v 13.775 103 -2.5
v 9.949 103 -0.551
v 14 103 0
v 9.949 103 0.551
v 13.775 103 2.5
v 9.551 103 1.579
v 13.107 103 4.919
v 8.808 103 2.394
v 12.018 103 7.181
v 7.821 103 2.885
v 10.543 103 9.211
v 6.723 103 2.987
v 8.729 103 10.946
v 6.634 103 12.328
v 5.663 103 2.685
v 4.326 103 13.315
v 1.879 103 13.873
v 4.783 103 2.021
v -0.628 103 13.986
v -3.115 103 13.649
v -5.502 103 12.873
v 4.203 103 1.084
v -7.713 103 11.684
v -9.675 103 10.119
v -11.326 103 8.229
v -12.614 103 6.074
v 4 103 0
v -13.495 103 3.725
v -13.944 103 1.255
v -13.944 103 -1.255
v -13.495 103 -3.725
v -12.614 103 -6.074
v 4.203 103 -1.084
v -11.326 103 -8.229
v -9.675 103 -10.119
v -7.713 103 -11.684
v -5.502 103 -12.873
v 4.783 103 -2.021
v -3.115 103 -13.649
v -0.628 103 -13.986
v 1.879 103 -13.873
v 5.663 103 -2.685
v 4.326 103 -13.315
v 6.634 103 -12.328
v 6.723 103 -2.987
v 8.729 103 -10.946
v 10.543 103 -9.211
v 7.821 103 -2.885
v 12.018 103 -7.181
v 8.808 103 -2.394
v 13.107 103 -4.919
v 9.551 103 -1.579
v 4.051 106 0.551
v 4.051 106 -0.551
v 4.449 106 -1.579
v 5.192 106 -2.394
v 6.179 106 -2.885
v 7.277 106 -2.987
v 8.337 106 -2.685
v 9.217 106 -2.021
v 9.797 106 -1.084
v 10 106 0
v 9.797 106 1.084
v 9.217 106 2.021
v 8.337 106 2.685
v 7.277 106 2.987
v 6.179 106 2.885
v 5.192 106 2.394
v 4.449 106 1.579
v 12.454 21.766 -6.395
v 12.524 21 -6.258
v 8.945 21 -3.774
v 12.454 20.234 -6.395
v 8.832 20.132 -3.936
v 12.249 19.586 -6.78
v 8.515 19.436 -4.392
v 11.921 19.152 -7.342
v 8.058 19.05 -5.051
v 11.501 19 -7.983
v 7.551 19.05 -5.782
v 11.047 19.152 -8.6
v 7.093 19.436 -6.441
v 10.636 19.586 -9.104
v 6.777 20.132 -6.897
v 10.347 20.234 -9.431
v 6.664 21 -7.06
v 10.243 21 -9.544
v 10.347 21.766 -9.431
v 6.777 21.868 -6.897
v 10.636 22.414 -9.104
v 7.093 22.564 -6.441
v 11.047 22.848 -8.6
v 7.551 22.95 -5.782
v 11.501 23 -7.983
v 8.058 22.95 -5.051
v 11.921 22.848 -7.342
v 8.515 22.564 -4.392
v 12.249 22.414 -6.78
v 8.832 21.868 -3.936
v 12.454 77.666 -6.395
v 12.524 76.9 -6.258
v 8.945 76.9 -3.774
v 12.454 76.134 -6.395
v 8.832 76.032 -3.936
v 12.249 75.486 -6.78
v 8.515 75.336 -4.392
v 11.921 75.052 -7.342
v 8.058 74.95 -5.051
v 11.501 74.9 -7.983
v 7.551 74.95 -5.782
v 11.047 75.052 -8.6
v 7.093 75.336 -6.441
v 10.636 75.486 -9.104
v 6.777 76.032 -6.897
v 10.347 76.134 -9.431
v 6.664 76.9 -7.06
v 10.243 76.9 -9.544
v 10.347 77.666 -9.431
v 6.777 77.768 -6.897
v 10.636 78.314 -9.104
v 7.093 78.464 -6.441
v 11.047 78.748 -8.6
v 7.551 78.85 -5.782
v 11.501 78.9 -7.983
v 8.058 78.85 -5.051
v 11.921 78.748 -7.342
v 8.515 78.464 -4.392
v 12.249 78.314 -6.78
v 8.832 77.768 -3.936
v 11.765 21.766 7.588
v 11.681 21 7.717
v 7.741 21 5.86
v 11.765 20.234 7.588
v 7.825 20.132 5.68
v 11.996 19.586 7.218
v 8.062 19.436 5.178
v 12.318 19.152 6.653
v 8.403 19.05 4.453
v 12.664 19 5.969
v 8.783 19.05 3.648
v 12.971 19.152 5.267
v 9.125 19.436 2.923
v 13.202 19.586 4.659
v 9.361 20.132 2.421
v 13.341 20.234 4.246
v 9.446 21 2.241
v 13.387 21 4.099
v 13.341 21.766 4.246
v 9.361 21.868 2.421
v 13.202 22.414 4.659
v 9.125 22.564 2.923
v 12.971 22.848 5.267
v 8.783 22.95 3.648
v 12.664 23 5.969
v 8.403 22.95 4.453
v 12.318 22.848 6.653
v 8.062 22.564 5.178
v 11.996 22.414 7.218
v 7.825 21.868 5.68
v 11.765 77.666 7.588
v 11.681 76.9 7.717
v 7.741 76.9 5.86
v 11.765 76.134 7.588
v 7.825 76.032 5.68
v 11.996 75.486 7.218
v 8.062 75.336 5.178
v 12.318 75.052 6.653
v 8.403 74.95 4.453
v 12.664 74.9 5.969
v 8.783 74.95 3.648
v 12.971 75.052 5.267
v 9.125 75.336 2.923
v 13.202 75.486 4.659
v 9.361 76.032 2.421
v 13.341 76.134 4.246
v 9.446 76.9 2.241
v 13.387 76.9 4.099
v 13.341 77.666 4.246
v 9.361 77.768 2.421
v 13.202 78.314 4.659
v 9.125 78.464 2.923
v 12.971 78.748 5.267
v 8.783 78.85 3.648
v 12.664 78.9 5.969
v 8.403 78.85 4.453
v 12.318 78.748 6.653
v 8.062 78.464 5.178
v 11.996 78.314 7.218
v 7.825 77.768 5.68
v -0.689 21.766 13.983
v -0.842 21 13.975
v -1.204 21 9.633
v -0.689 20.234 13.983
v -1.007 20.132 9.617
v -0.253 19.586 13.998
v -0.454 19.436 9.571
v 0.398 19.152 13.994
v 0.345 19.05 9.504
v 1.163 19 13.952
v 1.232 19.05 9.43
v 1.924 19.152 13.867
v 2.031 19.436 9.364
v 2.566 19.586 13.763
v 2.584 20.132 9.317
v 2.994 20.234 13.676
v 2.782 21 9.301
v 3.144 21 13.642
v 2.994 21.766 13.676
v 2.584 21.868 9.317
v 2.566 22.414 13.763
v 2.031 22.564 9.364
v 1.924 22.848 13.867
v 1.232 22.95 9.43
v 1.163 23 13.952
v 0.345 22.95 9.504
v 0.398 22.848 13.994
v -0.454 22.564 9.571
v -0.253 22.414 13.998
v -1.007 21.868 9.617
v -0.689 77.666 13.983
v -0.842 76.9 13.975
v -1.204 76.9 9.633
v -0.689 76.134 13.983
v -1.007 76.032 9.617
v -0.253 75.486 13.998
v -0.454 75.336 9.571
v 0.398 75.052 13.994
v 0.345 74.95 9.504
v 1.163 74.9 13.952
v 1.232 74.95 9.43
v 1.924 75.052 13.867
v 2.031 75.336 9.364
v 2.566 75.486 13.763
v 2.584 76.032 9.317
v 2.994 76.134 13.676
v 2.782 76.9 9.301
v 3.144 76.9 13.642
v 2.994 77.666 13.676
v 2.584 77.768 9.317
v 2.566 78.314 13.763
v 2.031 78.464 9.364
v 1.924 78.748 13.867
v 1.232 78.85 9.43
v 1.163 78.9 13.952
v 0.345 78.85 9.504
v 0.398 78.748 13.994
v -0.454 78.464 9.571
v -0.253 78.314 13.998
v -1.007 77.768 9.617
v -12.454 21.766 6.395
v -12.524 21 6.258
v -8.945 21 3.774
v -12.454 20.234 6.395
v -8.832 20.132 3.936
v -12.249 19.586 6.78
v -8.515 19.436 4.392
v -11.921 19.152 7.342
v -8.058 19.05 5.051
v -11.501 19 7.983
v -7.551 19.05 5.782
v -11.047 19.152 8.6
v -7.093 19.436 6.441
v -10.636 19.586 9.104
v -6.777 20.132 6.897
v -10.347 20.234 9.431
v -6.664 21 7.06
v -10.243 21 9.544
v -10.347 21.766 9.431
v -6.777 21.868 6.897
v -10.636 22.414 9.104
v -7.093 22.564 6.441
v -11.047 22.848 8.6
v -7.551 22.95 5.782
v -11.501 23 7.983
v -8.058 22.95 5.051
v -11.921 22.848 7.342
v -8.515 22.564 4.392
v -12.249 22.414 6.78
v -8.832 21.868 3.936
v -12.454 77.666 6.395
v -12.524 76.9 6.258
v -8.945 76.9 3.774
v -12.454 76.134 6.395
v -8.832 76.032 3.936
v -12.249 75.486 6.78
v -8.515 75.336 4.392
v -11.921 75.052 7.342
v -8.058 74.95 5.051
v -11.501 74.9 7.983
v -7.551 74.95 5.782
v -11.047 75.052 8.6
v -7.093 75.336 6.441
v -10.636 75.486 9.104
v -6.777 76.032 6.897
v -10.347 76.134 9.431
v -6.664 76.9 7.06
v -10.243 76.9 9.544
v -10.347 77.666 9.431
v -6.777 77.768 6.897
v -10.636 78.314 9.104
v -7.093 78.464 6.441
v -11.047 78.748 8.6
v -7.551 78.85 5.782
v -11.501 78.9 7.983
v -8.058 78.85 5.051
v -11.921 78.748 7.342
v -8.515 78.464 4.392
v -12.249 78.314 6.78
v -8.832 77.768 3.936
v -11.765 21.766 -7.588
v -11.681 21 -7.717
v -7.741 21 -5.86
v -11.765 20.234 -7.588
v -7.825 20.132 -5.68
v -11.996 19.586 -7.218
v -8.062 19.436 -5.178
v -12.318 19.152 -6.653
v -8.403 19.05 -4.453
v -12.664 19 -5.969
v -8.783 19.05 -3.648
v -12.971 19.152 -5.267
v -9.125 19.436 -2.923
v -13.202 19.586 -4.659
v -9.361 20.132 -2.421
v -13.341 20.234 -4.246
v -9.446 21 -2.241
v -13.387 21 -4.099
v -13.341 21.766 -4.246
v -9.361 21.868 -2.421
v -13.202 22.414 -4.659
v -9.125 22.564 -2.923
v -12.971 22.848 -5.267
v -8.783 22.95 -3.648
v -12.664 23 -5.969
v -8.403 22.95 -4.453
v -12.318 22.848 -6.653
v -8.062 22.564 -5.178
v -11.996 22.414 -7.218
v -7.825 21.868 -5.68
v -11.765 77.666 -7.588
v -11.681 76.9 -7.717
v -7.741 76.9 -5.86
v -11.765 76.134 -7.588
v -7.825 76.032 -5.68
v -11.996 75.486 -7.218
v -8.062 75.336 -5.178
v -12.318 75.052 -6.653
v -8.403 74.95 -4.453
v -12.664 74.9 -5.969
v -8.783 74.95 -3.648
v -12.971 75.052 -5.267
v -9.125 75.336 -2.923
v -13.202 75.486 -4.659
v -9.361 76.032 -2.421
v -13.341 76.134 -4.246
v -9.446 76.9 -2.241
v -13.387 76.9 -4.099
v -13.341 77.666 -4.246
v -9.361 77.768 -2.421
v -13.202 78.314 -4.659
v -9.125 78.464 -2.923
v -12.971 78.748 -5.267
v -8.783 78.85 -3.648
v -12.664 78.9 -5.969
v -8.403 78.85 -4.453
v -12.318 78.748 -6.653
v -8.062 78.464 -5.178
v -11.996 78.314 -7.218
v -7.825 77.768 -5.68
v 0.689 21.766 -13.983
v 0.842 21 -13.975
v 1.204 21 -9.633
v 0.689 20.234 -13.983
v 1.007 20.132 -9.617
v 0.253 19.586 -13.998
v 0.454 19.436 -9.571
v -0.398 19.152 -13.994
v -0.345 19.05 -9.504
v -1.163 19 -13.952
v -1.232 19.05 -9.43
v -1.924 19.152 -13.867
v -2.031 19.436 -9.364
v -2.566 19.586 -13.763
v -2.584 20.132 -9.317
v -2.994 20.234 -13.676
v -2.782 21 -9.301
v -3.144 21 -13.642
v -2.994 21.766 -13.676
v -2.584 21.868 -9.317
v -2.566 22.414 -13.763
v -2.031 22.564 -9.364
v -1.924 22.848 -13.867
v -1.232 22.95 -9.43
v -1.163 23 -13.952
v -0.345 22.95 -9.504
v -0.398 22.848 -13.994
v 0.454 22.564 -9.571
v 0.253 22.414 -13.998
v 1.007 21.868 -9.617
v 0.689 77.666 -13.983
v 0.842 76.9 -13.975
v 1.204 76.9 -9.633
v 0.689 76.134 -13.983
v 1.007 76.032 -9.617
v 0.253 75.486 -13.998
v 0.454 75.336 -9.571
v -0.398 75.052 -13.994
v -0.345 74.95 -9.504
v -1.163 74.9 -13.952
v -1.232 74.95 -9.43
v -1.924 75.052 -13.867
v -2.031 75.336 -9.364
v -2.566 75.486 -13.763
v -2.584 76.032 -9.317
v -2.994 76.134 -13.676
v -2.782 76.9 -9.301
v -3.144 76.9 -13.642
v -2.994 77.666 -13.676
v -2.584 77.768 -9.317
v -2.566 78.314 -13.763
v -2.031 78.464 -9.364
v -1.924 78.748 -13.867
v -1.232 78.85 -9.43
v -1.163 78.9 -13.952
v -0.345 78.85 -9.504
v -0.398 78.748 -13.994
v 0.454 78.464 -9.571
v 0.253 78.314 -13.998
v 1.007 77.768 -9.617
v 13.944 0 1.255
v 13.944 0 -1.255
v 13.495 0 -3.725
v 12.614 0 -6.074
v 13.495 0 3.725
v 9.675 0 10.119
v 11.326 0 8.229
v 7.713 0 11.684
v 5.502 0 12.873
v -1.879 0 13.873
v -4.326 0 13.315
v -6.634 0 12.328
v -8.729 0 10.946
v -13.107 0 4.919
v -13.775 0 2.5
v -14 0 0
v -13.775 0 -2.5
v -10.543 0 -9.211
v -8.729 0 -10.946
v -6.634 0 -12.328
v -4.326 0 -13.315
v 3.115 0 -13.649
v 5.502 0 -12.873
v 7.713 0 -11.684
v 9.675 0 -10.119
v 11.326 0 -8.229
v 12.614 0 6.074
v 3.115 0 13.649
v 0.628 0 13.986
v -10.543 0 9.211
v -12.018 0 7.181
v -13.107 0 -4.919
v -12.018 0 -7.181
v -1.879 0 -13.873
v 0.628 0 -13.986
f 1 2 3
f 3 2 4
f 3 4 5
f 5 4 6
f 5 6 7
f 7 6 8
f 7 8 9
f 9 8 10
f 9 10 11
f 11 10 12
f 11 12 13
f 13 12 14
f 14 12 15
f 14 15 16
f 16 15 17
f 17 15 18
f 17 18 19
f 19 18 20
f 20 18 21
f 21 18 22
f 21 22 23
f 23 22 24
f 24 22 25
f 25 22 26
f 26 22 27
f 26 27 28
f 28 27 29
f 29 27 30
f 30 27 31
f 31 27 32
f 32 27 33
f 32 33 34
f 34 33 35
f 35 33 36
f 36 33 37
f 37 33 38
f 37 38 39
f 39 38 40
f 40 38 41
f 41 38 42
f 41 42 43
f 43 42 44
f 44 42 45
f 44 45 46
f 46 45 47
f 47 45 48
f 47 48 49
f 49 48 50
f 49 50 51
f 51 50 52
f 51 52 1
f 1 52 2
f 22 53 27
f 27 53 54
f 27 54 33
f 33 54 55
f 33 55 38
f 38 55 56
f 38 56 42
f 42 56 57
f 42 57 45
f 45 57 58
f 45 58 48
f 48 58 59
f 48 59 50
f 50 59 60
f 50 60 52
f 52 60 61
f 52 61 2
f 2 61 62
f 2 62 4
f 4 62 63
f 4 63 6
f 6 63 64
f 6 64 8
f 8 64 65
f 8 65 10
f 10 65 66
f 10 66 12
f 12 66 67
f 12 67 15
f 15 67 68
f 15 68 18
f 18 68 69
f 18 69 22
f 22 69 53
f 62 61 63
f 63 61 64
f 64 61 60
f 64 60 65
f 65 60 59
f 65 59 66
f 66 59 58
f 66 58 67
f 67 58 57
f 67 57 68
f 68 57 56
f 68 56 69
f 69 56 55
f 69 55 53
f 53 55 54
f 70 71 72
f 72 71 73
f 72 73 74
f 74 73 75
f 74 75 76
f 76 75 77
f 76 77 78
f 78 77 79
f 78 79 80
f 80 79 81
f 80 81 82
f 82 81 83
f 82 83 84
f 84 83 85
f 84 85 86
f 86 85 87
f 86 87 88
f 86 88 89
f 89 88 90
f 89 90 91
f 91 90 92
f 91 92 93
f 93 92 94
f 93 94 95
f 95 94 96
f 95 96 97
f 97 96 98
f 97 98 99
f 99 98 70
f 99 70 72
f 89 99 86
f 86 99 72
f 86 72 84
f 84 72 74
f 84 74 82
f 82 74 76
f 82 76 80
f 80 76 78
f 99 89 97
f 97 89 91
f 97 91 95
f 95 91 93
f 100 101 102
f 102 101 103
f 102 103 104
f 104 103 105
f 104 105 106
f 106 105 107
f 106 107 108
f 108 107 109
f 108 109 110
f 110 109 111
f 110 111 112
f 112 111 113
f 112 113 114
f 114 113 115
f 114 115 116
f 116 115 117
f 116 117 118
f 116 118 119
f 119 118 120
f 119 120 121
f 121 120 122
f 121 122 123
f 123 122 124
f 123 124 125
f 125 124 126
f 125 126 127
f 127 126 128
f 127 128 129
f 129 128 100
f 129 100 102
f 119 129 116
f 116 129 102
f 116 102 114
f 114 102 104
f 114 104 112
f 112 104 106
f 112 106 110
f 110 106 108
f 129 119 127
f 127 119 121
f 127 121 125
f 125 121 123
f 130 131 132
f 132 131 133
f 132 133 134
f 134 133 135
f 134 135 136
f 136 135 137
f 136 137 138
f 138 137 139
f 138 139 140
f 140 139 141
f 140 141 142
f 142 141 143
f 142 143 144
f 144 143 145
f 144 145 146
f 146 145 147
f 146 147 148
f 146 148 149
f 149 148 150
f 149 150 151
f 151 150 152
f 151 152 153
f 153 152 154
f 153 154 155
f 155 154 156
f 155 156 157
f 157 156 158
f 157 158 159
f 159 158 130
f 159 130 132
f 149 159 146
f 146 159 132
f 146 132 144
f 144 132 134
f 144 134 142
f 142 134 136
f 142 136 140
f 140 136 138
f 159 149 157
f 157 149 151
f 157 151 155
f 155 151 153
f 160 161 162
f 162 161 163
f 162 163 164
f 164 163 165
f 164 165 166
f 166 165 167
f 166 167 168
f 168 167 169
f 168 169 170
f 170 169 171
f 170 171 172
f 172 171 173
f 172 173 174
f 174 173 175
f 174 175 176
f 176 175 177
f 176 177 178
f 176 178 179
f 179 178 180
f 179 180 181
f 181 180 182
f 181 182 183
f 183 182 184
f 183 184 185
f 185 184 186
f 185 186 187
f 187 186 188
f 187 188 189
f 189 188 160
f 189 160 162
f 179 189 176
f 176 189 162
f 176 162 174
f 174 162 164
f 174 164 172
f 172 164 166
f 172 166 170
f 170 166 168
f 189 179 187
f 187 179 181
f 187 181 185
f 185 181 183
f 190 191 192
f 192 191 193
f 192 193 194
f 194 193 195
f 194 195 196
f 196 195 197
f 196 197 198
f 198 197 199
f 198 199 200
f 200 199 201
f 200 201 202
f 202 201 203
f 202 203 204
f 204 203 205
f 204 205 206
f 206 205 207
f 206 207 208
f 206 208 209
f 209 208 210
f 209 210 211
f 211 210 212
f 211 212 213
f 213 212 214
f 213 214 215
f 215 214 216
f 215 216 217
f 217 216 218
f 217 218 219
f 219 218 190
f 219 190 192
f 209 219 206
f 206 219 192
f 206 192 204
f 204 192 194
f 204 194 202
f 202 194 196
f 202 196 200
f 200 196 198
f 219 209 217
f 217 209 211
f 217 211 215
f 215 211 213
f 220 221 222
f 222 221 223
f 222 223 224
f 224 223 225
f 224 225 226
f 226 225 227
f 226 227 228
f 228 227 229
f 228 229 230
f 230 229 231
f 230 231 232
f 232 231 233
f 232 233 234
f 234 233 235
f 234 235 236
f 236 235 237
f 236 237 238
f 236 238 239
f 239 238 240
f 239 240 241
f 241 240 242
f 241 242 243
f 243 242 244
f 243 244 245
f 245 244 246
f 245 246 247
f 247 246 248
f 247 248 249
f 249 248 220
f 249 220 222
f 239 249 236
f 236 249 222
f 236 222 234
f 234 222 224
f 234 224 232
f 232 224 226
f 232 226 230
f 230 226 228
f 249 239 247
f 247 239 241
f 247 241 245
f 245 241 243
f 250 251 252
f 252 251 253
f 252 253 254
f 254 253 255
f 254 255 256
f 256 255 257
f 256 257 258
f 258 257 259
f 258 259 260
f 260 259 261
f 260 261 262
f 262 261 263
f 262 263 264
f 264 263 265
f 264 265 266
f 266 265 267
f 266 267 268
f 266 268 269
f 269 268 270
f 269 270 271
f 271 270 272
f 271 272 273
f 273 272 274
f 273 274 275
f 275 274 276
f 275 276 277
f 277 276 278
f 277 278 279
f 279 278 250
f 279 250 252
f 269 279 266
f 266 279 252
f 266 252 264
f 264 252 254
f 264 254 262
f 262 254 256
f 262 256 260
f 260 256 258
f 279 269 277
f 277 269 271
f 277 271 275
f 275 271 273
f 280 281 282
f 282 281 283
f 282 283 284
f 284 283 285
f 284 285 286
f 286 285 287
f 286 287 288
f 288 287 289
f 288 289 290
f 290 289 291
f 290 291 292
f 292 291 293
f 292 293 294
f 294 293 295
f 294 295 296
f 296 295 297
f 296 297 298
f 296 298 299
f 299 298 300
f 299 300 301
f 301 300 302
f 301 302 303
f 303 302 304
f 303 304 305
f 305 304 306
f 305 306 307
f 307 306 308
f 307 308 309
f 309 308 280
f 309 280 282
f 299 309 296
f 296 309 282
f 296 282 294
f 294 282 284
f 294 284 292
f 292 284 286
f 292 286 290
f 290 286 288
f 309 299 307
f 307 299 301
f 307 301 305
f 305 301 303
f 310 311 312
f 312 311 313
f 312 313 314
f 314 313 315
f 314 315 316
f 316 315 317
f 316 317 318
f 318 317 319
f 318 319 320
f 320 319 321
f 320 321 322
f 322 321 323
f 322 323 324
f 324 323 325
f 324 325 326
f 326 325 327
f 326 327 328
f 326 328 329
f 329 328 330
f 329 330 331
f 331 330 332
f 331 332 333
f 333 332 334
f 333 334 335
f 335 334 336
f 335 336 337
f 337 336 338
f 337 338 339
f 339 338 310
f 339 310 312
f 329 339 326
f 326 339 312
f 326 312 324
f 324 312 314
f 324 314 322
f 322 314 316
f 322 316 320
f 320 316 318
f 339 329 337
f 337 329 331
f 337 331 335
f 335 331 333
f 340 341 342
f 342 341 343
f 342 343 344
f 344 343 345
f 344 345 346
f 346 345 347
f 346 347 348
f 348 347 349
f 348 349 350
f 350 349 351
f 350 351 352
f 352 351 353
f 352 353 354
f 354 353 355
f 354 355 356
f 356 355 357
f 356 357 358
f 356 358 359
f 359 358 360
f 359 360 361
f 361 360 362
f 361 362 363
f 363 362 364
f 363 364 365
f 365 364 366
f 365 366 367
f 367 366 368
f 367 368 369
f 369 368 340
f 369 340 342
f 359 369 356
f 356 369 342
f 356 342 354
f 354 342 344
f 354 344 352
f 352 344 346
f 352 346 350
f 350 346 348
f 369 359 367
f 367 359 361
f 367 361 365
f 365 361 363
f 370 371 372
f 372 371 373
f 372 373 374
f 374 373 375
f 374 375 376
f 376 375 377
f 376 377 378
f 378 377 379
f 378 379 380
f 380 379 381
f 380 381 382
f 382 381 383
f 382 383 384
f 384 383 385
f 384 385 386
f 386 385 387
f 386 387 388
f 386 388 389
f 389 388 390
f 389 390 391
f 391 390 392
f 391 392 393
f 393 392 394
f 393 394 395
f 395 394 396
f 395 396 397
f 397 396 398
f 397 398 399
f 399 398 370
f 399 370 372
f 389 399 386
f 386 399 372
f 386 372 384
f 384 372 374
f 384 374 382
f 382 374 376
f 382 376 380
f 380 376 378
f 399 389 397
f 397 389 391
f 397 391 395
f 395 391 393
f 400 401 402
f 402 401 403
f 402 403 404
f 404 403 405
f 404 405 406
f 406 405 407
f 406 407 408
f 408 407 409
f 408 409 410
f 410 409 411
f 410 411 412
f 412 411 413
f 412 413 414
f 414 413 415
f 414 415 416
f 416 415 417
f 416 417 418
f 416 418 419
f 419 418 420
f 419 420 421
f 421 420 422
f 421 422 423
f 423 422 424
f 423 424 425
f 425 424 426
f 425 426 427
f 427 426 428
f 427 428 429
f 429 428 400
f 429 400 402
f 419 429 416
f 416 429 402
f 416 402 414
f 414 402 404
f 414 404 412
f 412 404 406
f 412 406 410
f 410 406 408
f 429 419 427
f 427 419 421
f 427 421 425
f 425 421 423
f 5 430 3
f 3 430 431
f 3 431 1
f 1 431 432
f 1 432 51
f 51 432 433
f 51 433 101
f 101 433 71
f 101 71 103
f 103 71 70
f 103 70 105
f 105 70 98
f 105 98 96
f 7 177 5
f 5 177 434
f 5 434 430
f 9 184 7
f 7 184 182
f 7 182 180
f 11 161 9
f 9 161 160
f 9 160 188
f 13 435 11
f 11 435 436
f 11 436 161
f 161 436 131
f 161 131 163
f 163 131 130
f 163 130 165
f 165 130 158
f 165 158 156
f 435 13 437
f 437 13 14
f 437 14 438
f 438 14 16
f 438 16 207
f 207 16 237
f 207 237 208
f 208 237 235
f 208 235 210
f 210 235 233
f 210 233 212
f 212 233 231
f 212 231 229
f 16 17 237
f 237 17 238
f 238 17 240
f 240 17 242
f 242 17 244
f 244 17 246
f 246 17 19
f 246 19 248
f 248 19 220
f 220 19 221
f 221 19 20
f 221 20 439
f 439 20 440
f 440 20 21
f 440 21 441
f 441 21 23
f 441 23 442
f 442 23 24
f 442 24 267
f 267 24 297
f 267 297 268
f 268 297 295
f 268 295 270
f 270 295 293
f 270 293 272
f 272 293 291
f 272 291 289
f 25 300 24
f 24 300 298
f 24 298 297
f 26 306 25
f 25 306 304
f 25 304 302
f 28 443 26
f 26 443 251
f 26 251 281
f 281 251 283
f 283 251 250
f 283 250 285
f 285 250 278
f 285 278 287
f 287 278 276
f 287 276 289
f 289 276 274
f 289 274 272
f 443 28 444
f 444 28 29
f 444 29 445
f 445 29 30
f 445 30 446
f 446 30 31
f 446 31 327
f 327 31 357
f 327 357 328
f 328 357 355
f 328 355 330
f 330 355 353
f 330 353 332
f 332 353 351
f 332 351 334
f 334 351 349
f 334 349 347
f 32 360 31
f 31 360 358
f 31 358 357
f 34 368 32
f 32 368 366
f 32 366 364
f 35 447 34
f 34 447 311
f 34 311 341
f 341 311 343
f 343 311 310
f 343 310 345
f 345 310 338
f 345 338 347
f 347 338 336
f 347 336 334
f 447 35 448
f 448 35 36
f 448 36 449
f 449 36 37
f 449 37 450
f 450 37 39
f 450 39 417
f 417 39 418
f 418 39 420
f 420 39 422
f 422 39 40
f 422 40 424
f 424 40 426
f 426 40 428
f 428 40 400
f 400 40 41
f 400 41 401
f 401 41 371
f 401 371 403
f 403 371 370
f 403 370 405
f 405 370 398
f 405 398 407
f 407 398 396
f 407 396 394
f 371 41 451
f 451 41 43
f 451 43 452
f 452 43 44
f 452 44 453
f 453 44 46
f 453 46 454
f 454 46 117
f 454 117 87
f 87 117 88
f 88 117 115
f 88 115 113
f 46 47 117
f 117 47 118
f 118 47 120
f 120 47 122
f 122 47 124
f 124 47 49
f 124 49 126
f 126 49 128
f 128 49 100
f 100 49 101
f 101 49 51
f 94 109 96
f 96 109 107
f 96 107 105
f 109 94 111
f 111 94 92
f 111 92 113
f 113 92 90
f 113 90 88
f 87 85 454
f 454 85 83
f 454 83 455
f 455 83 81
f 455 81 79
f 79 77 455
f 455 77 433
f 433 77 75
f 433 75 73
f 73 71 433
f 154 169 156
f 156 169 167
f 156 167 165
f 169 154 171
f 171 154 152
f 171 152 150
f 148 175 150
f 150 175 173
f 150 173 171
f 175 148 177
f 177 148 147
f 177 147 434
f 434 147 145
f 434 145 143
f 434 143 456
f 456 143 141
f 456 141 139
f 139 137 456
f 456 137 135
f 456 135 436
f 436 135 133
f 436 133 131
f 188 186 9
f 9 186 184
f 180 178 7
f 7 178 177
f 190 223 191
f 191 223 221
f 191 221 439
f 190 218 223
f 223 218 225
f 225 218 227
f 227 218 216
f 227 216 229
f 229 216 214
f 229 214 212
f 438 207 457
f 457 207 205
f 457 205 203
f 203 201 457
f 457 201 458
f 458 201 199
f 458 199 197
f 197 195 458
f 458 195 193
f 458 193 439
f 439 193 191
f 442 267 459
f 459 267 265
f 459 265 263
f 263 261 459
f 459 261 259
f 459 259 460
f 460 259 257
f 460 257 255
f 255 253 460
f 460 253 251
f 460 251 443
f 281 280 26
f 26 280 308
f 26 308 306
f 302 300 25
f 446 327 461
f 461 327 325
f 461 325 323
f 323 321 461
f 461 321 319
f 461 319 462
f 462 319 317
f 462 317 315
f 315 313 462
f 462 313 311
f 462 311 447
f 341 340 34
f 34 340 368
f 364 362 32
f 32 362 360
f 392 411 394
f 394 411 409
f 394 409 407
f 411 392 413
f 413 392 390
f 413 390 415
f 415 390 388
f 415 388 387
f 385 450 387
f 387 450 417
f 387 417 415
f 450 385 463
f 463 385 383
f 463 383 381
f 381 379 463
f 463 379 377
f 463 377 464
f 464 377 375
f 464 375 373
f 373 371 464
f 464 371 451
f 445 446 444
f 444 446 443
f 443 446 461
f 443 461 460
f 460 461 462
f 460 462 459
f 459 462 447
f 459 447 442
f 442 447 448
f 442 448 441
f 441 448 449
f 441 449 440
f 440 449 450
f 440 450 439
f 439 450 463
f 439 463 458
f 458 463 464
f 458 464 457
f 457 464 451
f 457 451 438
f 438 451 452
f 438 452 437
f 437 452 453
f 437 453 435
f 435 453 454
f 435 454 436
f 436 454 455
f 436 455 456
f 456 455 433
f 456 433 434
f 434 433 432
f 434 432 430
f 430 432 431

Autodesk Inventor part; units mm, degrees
ref_plane "YZ Plane" through (0, 0, 0) normal (1, 0, 0) x (0, 1, 0)
sketch "Sketch1" plane through (0, 0, 0) normal (0, 1, 0) x (-1, 0, 0)
  circle A0 centre (0, 0) radius 14
  dimension "d0" = 28
extrude "Extrusion1" add sketch "Sketch1" along normal blind 100
ref_plane "Work Plane1" through (0, 91.9, 0) normal (0, 1, 0) x (1, 0, 0)
sketch "Sketch2" plane through (0, 91.9, 0) normal (0, 1, 0) x (1, 0, 0)
  arc A0 (-4.9212, -15.749) -> (7.4582, -14.7182) centre (0, 0) ccw
  line L0 (-4.9212, -15.749) -> (7.4582, -14.7182)
  line L1 (3.8609, -16.2352) -> (3.7603, -15.0261)
  line L2 (1.2685, -15.2336) -> (-1.2229, -15.4411)
  line L3 (-1.1222, -16.6505) -> (-1.2229, -15.4411)
  line L4 (1.7436, -20.9268) -> (4.2347, -20.7192)
  line L5 (4.2347, -20.7192) -> (3.8609, -16.2352)
  line L6 (-1.1222, -16.6505) -> (-0.7484, -21.1346)
  line L7 (-0.7484, -21.1346) -> (1.7436, -20.9268)
  line L8 (8.9092, -10.799) -> (11.1788, -12.1357)
  arc A1 (11.1788, -12.1357) -> (16.4755, -0.8993) centre (0, 0.0004) ccw
  line L9 (11.1788, -12.1357) -> (16.4755, -0.8993)
  line L10 (11.1788, -12.1357) -> (12.7611, -8.7789)
  line L11 (12.7611, -8.7789) -> (17.9297, -11.2153)
  line L12 (17.9297, -11.2153) -> (20.0617, -6.6927)
  line L13 (20.0617, -6.6927) -> (14.893, -4.2562)
  arc A2 (16.0997, 3.6126) -> (9.0172, 13.8181) centre (0, 0) ccw
  line L14 (16.0997, 3.6126) -> (9.0172, 13.8181)
  line L15 (16.0997, 3.6126) -> (13.9839, 6.6614)
  line L16 (13.9839, 6.6614) -> (18.6782, 9.9192)
  line L17 (18.6782, 9.9192) -> (15.8275, 14.0269)
  line L18 (15.8275, 14.0269) -> (11.1332, 10.7691)
  arc A3 (4.9196, 15.7499) -> (-7.4587, 14.7181) centre (0.0003, 0.0003) ccw
  line L19 (4.9196, 15.7499) -> (-7.4587, 14.7181)
  line L20 (4.9196, 15.7499) -> (1.2214, 15.4417)
  line L21 (1.2214, 15.4417) -> (0.7467, 21.1359)
  line L22 (0.7467, 21.1359) -> (-4.236, 20.7206)
  line L23 (-4.236, 20.7206) -> (-3.7613, 15.0263)
  arc A4 (-11.1784, 12.1373) -> (-16.4754, 0.901) centre (0, 0.0009) ccw
  line L24 (-14, 0) -> (-16.4754, 0.901)
  line L25 (-11.1784, 12.1373) -> (-16.4754, 0.901)
  line L26 (-11.1784, 12.1373) -> (-12.7608, 8.7805)
  line L27 (-12.7608, 8.7805) -> (-17.9293, 11.2171)
  line L28 (-17.9293, 11.2171) -> (-20.0613, 6.6944)
  line L29 (-20.0613, 6.6944) -> (-14.8929, 4.2579)
  arc A5 (-16.0997, -3.6126) -> (-9.0172, -13.8181) centre (0, 0) ccw
  line L30 (-9.0172, -13.8181) -> (-16.0997, -3.6126)
  line L31 (-16.0997, -3.6126) -> (-13.9839, -6.6614)
  line L32 (-13.9839, -6.6614) -> (-18.6782, -9.9192)
  line L33 (-18.6782, -9.9192) -> (-15.8275, -14.0269)
  line L34 (-15.8275, -14.0269) -> (-11.1332, -10.7691)
  line L35 (11.1788, -12.1357) -> (-16.4754, 0.901)
  line L36 (16.4755, -0.8993) -> (-11.1784, 12.1373)
  line L37 (-9.0172, -13.8181) -> (16.0997, 3.6126)
  line L38 (-16.0997, -3.6126) -> (9.0172, 13.8181)
  line L39 (-4.9212, -15.749) -> (-7.4587, 14.7181)
  line L40 (7.4582, -14.7182) -> (4.9196, 15.7499)
  line L41 (5.0265, 14.4675) -> (-7.3518, 13.4357)
  dimension "d4" = 2.5
  dimension "d5" = 3.711
  dimension "d6" = 5.714
  dimension "d7" = 5
  dimension "d8" = 3.711
  dimension "d9" = 5.714
  dimension "d10" = 5
  dimension "d11" = 3.711
  dimension "d12" = 5.714
  dimension "d13" = 5
  dimension "d14" = 3.711
  dimension "d15" = 5.714
  dimension "d16" = 5
  dimension "d17" = 3.711
  dimension "d18" = 5.714
  dimension "d19" = 5
  dimension "d20" = 5.258
  dimension "d21" = 0.001
  dimension "d22" = 5.0004
  dimension "d23" = 5.0004
  dimension "d24" = 36.2862
  dimension "d25" = 12.3632
ref_plane "Work Plane2" through (5.0265, 91.9, -14.4675) normal (-0.0831, 0, -0.9965) x (-0.9965, 0, 0.0831)
sketch "Sketch3" plane through (5.0265, 91.9, -14.4675) normal (-0.0831, 0, -0.9965) x (-0.9965, 0, 0.0831)
  line L0 (0, 0) -> (12.421, 0)
  line L1 (20.2109, -91.9) -> (-7.7891, -91.9) projected
  line L2 (0, -91.9) -> (12.421, -91.9)
  line L3 (12.421, 0) -> (12.421, -91.9) construction
  line L4 (6.2105, 0) -> (6.2105, -15) construction
  circle A0 centre (6.2105, -15) radius 2
  line L5 (6.2105, -91.9) -> (6.2105, -76.9) construction
  circle A1 centre (6.2105, -76.9) radius 2
  point P0 (6.2109, -91.9)
  dimension "d27" = 12.421
  dimension "d28" = 15
  dimension "d29" = 4
  dimension "d30" = 15
  dimension "d31" = 4
ref_plane "Work Plane3" through (4.9434, 91.9, -15.4641) normal (-0.0831, 0, -0.9965) x (-0.9965, 0, 0.0831)
sketch "Sketch4" plane through (4.9434, 91.9, -15.4641) normal (-0.0831, 0, -0.9965) x (-0.9965, 0, 0.0831)
  line L0 (0, 0) -> (12.421, 0)
  line L1 (16.664, -85.9) -> (-11.336, -85.9)
  line L2 (-3.5469, -85.9) -> (12.421, -85.9)
  line L3 (12.421, 0) -> (12.421, -85.9) construction
  line L4 (6.2105, 0) -> (6.2105, -15) construction
  circle A0 centre (6.2105, -15) radius 2
  line L5 (6.2105, -85.9) -> (6.2105, -70.9) construction
  circle A1 centre (6.2105, -70.9) radius 2
  line L6 (6.2105, -76.9) -> (6.2105, -70.9) construction
  point P0 (6.2109, -91.9)
  point P1 (6.2109, -91.9)
  dimension "d33" = 12.421
  dimension "d34" = 15
  dimension "d35" = 4
  dimension "d36" = 15
  dimension "d37" = 4
  dimension "d43" = 6
extrude "Extrusion2" cut sketch "Sketch4" against normal blind 5.5
pattern_circular "Circular Pattern1" count 6 over 360 about axis through (0, -10, 0) along (0, 1, 0) of "Extrusion2"
sketch "Sketch5" plane through (0, 100, 0) normal (0, 1, 0) x (1, 0, 0)
  line L0 (0, 0) -> (14, 0) construction
  circle A0 centre (0, 0) radius 14 construction
  line L1 (0, 0) -> (7, 0) construction
  circle A1 centre (7, 0) radius 3
  dimension "d44" = 6
extrude "Extrusion3" add sketch "Sketch5" along normal blind 6
sketch "Sketch6" plane through (0, 100, 0) normal (0, 1, 0) x (1, 0, 0)
  circle A0 centre (0, 0) radius 14
extrude "Extrusion4" add sketch "Sketch6" along normal blind 3
properties part number "Grip Base"
